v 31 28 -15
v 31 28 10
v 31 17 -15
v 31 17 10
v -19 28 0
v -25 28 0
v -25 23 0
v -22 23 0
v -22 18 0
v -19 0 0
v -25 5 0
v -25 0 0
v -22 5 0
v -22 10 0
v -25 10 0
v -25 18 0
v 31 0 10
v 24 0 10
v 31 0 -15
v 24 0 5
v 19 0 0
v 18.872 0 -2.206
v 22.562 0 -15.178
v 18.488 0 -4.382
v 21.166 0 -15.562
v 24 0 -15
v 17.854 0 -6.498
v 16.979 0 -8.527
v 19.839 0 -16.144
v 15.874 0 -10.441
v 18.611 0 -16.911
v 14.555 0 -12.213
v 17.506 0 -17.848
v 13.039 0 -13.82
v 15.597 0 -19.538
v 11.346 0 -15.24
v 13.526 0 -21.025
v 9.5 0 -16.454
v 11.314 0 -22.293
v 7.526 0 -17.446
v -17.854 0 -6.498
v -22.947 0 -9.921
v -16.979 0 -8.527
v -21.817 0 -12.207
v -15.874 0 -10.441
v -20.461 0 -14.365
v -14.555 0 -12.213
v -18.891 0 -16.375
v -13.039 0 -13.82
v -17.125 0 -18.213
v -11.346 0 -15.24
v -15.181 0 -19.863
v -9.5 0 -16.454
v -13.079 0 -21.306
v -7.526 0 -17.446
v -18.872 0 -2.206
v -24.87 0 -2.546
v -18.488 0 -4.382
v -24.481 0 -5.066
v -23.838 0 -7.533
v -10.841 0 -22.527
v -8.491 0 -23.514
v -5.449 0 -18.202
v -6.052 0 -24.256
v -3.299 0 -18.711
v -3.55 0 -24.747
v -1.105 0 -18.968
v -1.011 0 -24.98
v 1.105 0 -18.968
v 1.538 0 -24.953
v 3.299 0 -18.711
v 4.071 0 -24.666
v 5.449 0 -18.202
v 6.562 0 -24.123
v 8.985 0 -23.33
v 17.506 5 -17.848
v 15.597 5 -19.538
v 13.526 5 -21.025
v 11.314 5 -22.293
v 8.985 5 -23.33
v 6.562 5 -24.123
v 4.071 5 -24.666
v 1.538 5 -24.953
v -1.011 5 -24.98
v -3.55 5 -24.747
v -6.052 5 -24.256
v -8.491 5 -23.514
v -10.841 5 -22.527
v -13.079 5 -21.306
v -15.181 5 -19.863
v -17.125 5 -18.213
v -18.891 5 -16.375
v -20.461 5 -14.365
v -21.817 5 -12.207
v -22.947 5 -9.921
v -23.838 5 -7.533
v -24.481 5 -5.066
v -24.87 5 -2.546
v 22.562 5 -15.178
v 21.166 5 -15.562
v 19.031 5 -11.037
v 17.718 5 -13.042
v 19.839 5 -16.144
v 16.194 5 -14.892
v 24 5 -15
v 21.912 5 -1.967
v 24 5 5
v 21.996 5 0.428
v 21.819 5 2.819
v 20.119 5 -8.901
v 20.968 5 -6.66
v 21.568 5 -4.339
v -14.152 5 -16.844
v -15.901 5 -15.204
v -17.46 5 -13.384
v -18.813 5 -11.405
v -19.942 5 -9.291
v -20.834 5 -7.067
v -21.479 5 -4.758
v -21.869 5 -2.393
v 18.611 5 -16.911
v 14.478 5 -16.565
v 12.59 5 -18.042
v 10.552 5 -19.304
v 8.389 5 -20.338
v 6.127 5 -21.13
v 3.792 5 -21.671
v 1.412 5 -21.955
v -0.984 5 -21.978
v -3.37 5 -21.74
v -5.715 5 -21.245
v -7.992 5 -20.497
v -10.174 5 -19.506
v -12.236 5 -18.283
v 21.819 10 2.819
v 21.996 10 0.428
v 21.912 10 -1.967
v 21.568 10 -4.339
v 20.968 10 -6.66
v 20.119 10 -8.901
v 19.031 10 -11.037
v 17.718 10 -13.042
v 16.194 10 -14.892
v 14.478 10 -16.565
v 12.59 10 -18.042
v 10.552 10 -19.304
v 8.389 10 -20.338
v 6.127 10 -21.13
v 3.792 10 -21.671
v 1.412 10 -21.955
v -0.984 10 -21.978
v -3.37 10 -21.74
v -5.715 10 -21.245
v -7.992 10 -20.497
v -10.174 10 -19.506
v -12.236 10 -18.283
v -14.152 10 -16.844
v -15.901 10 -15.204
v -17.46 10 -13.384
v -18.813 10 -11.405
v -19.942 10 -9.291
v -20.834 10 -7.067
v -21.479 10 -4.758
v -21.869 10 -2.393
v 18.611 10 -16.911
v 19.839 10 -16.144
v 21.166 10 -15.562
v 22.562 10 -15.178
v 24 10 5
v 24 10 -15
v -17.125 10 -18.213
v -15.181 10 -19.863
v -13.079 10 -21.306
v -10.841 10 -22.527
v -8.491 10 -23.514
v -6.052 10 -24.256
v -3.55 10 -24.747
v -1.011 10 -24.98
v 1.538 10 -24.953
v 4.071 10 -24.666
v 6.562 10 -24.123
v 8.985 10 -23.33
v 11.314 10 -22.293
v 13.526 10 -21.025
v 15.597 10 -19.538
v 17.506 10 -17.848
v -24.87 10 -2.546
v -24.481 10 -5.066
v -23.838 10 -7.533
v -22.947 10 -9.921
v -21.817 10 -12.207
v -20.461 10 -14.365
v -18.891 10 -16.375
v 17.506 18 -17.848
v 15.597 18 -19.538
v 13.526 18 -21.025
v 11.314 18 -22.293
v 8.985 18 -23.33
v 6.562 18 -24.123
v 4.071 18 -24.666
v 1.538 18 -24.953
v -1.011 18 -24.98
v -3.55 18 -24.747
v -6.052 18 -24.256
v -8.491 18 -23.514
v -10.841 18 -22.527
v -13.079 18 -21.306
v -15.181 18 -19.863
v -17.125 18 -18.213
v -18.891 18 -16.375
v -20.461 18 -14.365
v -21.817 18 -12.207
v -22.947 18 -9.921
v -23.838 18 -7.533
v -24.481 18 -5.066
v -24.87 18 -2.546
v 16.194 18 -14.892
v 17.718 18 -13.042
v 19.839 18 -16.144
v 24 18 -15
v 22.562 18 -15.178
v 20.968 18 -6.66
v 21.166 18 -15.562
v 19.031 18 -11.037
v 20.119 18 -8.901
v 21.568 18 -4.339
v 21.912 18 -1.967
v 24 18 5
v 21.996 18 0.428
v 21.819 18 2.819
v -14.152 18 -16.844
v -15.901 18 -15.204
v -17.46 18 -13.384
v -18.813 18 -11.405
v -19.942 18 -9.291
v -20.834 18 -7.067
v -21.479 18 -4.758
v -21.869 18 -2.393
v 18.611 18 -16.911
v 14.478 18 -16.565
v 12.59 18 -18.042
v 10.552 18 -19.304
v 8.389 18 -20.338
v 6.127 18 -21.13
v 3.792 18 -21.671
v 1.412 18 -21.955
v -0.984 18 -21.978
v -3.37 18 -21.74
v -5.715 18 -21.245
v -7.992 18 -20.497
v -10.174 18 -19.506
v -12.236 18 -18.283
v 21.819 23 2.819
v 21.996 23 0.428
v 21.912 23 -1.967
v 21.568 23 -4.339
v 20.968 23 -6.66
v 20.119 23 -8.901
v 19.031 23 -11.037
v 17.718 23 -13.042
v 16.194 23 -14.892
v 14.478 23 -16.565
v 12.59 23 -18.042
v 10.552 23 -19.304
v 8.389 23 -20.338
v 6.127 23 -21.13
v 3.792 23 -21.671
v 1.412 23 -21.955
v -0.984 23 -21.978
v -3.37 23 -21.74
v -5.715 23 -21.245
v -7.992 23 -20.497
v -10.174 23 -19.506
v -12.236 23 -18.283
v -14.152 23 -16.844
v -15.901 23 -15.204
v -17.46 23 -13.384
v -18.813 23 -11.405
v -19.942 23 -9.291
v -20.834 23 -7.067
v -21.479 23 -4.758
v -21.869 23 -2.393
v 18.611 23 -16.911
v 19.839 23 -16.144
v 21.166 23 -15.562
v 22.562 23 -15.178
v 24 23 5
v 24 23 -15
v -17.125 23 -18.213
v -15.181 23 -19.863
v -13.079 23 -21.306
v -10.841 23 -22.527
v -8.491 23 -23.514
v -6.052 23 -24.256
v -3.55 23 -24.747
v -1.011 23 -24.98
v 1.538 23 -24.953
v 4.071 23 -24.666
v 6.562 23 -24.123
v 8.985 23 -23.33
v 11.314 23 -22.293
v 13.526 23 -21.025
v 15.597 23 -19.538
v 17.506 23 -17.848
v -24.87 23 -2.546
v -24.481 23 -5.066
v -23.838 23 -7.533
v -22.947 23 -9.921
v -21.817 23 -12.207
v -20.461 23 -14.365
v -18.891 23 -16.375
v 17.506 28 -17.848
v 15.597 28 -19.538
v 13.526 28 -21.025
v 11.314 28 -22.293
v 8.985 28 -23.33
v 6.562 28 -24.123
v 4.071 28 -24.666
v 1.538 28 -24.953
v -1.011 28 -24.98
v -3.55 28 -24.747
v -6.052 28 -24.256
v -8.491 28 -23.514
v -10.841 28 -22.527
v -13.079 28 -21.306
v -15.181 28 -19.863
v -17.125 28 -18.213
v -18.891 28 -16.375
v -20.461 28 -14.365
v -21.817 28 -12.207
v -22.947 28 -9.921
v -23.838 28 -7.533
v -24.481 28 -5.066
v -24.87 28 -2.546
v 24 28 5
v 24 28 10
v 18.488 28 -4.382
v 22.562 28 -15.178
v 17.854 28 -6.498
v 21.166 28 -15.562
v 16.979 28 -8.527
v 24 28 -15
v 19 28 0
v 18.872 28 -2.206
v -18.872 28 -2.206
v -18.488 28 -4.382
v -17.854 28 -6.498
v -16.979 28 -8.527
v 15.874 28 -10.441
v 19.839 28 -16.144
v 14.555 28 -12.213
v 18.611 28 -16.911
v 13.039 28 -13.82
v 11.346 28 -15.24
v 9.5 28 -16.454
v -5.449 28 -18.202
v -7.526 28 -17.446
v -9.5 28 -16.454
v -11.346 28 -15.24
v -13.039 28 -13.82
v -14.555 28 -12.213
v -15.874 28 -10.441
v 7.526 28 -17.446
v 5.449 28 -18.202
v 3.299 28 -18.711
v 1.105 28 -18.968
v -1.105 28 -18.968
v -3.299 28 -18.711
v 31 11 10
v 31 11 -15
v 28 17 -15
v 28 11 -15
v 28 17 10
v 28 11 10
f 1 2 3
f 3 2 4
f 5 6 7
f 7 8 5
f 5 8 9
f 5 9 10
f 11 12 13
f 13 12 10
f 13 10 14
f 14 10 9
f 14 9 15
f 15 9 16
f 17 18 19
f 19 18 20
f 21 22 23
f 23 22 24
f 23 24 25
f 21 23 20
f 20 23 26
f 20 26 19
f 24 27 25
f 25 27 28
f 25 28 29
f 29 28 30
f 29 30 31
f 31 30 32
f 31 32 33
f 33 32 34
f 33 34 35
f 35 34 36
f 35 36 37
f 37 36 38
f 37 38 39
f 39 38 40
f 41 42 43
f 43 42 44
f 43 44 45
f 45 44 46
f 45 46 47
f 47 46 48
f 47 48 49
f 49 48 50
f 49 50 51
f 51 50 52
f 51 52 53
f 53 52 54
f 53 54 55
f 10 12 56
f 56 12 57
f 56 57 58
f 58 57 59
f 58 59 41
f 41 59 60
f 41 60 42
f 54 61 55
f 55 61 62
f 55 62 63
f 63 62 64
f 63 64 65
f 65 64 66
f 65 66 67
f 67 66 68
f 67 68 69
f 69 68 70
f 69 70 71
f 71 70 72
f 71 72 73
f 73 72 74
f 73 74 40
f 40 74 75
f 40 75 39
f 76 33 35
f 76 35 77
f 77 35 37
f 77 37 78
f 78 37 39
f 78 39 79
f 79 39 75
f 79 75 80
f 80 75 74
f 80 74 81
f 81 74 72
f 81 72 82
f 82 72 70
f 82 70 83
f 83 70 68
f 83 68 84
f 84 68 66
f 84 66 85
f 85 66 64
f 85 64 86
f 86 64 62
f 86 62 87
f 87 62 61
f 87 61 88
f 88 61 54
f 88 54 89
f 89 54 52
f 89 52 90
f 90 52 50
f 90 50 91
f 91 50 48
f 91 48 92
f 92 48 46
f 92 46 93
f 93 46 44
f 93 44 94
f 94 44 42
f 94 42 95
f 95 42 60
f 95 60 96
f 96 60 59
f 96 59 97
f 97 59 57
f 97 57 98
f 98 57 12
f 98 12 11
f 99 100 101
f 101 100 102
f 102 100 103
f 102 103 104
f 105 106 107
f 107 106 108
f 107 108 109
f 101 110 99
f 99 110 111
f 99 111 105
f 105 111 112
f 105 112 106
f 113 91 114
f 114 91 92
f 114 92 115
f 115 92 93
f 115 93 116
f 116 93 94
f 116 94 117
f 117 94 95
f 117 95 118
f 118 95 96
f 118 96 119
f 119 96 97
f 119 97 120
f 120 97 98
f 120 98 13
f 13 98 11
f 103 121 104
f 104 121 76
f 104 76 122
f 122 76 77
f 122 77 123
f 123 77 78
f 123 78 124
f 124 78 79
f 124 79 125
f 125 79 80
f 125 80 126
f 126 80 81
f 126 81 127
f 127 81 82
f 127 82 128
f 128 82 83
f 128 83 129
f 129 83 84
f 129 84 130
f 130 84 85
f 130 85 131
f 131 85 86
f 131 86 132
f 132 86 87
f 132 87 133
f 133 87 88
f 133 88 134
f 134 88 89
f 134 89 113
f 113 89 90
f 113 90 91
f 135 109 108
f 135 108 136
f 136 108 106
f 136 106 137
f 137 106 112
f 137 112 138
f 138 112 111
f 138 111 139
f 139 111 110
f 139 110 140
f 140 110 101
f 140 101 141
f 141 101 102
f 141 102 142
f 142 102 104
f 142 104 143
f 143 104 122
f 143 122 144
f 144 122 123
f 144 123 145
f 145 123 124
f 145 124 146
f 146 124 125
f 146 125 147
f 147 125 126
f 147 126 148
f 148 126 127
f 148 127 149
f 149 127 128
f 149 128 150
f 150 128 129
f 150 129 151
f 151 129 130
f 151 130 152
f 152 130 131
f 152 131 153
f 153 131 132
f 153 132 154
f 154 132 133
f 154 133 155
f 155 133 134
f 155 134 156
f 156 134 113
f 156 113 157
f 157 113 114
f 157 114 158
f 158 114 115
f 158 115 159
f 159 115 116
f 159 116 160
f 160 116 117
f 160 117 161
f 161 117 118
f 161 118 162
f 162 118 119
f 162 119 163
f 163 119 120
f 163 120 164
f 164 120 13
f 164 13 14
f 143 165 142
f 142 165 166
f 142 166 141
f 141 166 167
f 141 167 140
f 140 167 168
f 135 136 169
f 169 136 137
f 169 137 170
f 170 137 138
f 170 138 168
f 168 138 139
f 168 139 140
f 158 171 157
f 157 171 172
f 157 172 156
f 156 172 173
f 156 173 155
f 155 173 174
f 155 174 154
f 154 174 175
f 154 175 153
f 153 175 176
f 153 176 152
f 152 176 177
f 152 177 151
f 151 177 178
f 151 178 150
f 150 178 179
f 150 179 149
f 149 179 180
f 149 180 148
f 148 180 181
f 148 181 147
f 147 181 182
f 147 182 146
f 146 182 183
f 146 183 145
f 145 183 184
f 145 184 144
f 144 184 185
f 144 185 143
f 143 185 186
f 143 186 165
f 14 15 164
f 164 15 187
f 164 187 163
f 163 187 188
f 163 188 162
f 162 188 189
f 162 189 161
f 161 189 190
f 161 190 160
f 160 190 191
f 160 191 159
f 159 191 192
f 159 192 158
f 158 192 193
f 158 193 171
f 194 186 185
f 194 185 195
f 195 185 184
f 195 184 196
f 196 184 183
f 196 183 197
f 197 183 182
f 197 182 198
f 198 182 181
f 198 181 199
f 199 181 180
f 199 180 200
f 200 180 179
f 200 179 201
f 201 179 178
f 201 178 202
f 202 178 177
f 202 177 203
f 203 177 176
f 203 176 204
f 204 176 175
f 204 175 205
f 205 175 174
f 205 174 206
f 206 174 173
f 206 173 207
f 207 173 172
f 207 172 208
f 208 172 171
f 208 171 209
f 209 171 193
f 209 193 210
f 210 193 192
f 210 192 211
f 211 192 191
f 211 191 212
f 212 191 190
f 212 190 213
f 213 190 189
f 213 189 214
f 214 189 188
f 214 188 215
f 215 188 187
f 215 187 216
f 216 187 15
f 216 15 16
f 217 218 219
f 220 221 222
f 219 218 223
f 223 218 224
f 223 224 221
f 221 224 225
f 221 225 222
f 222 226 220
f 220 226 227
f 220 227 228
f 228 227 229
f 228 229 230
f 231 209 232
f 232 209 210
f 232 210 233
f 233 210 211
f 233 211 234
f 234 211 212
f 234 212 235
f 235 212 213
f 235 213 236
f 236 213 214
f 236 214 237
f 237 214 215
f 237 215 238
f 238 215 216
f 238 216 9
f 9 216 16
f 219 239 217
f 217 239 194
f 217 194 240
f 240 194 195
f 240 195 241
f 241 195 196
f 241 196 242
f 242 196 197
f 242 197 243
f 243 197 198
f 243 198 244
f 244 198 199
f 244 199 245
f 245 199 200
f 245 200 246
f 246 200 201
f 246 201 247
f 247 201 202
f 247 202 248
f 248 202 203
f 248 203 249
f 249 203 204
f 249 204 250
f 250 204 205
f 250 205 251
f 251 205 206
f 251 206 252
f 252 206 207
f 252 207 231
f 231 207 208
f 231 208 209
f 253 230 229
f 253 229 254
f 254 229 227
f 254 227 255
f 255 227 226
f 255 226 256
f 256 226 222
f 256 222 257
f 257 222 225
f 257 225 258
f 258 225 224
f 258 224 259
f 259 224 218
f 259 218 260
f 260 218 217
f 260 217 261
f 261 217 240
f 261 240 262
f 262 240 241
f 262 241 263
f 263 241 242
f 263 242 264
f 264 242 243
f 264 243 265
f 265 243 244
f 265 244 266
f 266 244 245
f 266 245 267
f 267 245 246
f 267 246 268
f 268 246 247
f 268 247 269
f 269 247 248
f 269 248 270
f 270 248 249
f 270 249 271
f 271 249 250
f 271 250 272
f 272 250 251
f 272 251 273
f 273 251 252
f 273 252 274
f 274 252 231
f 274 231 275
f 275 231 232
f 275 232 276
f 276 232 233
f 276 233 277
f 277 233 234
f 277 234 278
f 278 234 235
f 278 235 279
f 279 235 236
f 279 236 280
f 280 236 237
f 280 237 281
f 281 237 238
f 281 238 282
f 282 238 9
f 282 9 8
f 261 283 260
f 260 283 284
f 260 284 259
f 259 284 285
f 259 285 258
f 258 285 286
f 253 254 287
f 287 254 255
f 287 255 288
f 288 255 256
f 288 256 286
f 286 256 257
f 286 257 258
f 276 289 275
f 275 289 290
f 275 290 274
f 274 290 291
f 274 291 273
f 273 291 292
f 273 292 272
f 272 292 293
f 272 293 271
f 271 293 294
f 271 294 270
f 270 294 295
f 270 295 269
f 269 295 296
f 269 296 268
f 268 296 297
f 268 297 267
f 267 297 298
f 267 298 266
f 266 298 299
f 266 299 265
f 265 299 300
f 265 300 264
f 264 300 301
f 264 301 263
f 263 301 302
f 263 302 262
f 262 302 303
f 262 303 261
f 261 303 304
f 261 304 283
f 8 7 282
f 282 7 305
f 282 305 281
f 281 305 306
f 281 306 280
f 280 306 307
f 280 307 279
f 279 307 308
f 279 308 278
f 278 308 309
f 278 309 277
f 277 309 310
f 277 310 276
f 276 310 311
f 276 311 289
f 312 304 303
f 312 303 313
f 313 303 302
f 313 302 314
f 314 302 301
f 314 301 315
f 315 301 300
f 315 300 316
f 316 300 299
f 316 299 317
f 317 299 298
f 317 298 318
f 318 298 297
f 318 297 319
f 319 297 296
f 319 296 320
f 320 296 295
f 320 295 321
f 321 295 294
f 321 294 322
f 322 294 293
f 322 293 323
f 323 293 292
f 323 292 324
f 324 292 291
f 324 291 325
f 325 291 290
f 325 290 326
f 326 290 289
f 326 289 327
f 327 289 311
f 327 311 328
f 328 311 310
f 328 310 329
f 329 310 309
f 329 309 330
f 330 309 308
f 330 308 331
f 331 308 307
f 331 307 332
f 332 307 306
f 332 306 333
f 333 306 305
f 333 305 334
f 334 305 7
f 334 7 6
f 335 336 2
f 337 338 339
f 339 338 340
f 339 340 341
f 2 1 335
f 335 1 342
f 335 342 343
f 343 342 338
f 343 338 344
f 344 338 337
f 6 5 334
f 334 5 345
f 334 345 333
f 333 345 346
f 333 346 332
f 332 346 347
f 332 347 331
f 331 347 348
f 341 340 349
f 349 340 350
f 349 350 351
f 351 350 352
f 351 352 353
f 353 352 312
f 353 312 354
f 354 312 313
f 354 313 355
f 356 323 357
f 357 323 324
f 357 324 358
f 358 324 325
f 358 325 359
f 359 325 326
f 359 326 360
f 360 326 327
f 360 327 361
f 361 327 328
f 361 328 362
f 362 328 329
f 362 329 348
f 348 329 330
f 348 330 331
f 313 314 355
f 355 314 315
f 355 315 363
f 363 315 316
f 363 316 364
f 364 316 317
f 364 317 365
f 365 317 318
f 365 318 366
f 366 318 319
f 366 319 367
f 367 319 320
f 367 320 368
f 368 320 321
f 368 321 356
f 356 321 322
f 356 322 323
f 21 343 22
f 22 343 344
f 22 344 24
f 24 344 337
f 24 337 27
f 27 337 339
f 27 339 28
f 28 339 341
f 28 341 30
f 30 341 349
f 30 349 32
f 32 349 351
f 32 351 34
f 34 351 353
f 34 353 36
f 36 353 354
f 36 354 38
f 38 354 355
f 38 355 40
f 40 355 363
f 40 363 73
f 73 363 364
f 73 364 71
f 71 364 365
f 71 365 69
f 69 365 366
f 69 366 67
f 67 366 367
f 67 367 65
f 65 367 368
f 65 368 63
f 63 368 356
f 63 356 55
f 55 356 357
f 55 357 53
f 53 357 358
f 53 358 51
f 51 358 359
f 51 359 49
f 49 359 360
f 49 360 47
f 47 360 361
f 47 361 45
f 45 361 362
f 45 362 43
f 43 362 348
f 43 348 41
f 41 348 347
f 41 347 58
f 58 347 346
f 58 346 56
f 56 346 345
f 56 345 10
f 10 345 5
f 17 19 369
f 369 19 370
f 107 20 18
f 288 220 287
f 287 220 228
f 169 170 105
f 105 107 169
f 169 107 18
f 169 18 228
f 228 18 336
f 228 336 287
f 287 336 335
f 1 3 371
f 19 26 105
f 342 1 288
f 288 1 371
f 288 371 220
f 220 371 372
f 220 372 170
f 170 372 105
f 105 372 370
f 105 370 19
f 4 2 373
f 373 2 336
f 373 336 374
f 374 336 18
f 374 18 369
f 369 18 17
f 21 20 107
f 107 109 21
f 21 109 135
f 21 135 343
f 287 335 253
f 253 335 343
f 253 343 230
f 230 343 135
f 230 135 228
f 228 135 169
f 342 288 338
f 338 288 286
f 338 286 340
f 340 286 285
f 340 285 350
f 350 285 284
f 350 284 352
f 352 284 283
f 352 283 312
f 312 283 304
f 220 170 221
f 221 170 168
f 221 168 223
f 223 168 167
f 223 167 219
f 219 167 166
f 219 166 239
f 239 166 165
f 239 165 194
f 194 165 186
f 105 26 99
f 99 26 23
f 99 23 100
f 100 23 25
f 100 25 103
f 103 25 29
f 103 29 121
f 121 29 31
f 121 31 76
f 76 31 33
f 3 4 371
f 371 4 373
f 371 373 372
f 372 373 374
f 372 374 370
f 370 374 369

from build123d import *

# Parameters (mm, degrees)
REVOLUCI_N1_ANGLE       = 180
CROQUIS2_R              = 19
CORTAR_EXTRUIR1_DEPTH   = 29
SALIENTE_EXTRUIR1_DEPTH = 15
CROQUIS4_W              = 7
CROQUIS4_H              = 28
SALIENTE_EXTRUIR2_DEPTH = 10
CHAFL_N1_SIZE           = 5
REDONDEO1_R             = 10
CORTAR_EXTRUIR2_DEPTH   = 40


with BuildPart() as part:
    # Croquis1 → Revolución1 (revolve)
    with BuildSketch(Plane.XY):
        Polygon((0, 0), (0, 28), (25, 28), (25, 23), (22, 23), (22, 18), (25, 18), (25, 10), (22, 10), (22, 5), (25, 5), (25, 0), align=None)
    revolve(axis=Axis((0, 0, 0), (0, 1, 0)), revolution_arc=REVOLUCI_N1_ANGLE)

    # Croquis2 → Cortar-Extruir1 (cut)
    with BuildSketch(Plane(origin=(0, 28, 0), x_dir=(1, 0, 0), z_dir=(0, 1, 0))):
        Circle(CROQUIS2_R)
    extrude(amount=-CORTAR_EXTRUIR1_DEPTH, mode=Mode.SUBTRACT)

    # Croquis3 → Saliente-Extruir1 (add)
    with BuildSketch(Plane.XY):
        Polygon((25, 28), (24, 28), (24, 0), (31, 0), (31, 28), align=None)
    extrude(amount=-SALIENTE_EXTRUIR1_DEPTH)

    # Croquis4 → Saliente-Extruir2 (add)
    with BuildSketch(Plane.XY):
        with Locations((27.5, 14)):
            Rectangle(CROQUIS4_W, CROQUIS4_H)
    extrude(amount=SALIENTE_EXTRUIR2_DEPTH)

    # Chaflán1
    # the kernel refuses this chamfer: 5 mm, written as the material it adds along each edge
    with BuildSketch(Plane(origin=(24, 10.14158506, 0), x_dir=(0.027495876610586317, 0, 0.9996219169112968), z_dir=(0, 1, 0))) as chafl_n1_piece_1_section:
        Polygon((CHAFL_N1_SIZE * 0.999621916911, -CHAFL_N1_SIZE * 0.0274958766106), (-CHAFL_N1_SIZE * 0.0274958766106, -CHAFL_N1_SIZE * 0.999621916911), (0, 0), align=None)
    chafl_n1_piece_1 = extrude(amount=30.71682988, mode=Mode.PRIVATE)
    chafl_n1_piece_1 = split(chafl_n1_piece_1, bisect_by=Plane(origin=(23.057401275, 18, 2.044863286), z_dir=(0, -1, 0)), keep=Keep.TOP, mode=Mode.PRIVATE)
    add(chafl_n1_piece_1)
    with BuildSketch(Plane(origin=(24, 10.14158506, 0), x_dir=(0.027495876610586317, 0, 0.9996219169112968), z_dir=(0, 1, 0))) as chafl_n1_piece_2_section:
        Polygon((CHAFL_N1_SIZE * 0.999621916911, -CHAFL_N1_SIZE * 0.0274958766106), (-CHAFL_N1_SIZE * 0.0274958766106, -CHAFL_N1_SIZE * 0.999621916911), (0, 0), align=None)
    chafl_n1_piece_2 = extrude(amount=17.85841494, mode=Mode.PRIVATE)
    chafl_n1_piece_2 = chafl_n1_piece_2 & Plane(origin=(0, 20.5, 0), x_dir=(1, 0, 0), z_dir=(0, -1, 0)) * Cylinder(22, 56, mode=Mode.PRIVATE)
    add(chafl_n1_piece_2)
    with BuildSketch(Plane(origin=(24, 23, 0), x_dir=(0.027495876610586317, 0, 0.9996219169112968), z_dir=(0, 1, 0)), Plane(origin=(24, 0, 0), x_dir=(0.027495876610586317, 0, 0.9996219169112968), z_dir=(0, 1, 0))) as chafl_n1_piece_3:
        Polygon((CHAFL_N1_SIZE * 0.999621916911, -CHAFL_N1_SIZE * 0.0274958766106), (-CHAFL_N1_SIZE * 0.0274958766106, -CHAFL_N1_SIZE * 0.999621916911), (0, 0), align=None)
    extrude(amount=5)
    with BuildSketch(Plane(origin=(24, -2.85841494, 0), x_dir=(0.027495876610586317, 0, 0.9996219169112968), z_dir=(0, 1, 0))) as chafl_n1_piece_4_section:
        Polygon((CHAFL_N1_SIZE * 0.999621916911, -CHAFL_N1_SIZE * 0.0274958766106), (-CHAFL_N1_SIZE * 0.0274958766106, -CHAFL_N1_SIZE * 0.999621916911), (0, 0), align=None)
    chafl_n1_piece_4 = extrude(amount=33.71682988, mode=Mode.PRIVATE)
    chafl_n1_piece_4 = split(chafl_n1_piece_4, bisect_by=Plane(origin=(23.057401275, 0, 2.044863286), z_dir=(0, 1, 0)), keep=Keep.TOP, mode=Mode.PRIVATE)
    chafl_n1_piece_4 = split(chafl_n1_piece_4, bisect_by=Plane(origin=(23.057401275, 5, 2.044863286), z_dir=(0, -1, 0)), keep=Keep.TOP, mode=Mode.PRIVATE)
    add(chafl_n1_piece_4)
    with BuildSketch(Plane(origin=(24, -2.85841494, 0), x_dir=(0.027495876610586317, 0, 0.9996219169112968), z_dir=(0, 1, 0))) as chafl_n1_piece_5_section:
        Polygon((CHAFL_N1_SIZE * 0.999621916911, -CHAFL_N1_SIZE * 0.0274958766106), (-CHAFL_N1_SIZE * 0.0274958766106, -CHAFL_N1_SIZE * 0.999621916911), (0, 0), align=None)
    chafl_n1_piece_5 = extrude(amount=33.71682988, mode=Mode.PRIVATE)
    chafl_n1_piece_5 = split(chafl_n1_piece_5, bisect_by=Plane(origin=(20.959134142, 28, 0.94889219), z_dir=(0, -1, 0)), keep=Keep.TOP, mode=Mode.PRIVATE)
    chafl_n1_piece_5 = split(chafl_n1_piece_5, bisect_by=Plane(origin=(20.959134142, 5, 0.94889219), z_dir=(0, 1, 0)), keep=Keep.TOP, mode=Mode.PRIVATE)
    chafl_n1_piece_5 = chafl_n1_piece_5 & Plane(origin=(0, 7.5, 0), x_dir=(1, 0, 0), z_dir=(0, -1, 0)) * Cylinder(22, 88, mode=Mode.PRIVATE)
    add(chafl_n1_piece_5)
    with BuildSketch(Plane(origin=(24, 10, 0), x_dir=(0.027495876610586317, 0, 0.9996219169112968), z_dir=(0, 1, 0))) as chafl_n1_piece_6:
        Polygon((CHAFL_N1_SIZE * 0.999621916911, -CHAFL_N1_SIZE * 0.0274958766106), (-CHAFL_N1_SIZE * 0.0274958766106, -CHAFL_N1_SIZE * 0.999621916911), (0, 0), align=None)
    extrude(amount=8)
    with BuildSketch(Plane(origin=(24, -2.85841494, 0), x_dir=(0.027495876610586317, 0, 0.9996219169112968), z_dir=(0, 1, 0))) as chafl_n1_piece_7_section:
        Polygon((CHAFL_N1_SIZE * 0.999621916911, -CHAFL_N1_SIZE * 0.0274958766106), (-CHAFL_N1_SIZE * 0.0274958766106, -CHAFL_N1_SIZE * 0.999621916911), (0, 0), align=None)
    chafl_n1_piece_7 = extrude(amount=33.71682988, mode=Mode.PRIVATE)
    chafl_n1_piece_7 = split(chafl_n1_piece_7, bisect_by=Plane(origin=(23.057401275, 28, 2.044863286), z_dir=(0, -1, 0)), keep=Keep.TOP, mode=Mode.PRIVATE)
    chafl_n1_piece_7 = split(chafl_n1_piece_7, bisect_by=Plane(origin=(23.057401275, 23, 2.044863286), z_dir=(0, 1, 0)), keep=Keep.TOP, mode=Mode.PRIVATE)
    add(chafl_n1_piece_7)
    with BuildSketch(Plane(origin=(24, -12.85841494, 0), x_dir=(0.027495876610586317, 0, 0.9996219169112968), z_dir=(0, 1, 0))) as chafl_n1_piece_8_section:
        Polygon((CHAFL_N1_SIZE * 0.999621916911, -CHAFL_N1_SIZE * 0.0274958766106), (-CHAFL_N1_SIZE * 0.0274958766106, -CHAFL_N1_SIZE * 0.999621916911), (0, 0), align=None)
    chafl_n1_piece_8 = extrude(amount=30.71682988, mode=Mode.PRIVATE)
    chafl_n1_piece_8 = split(chafl_n1_piece_8, bisect_by=Plane(origin=(20.959134142, 5, 0.94889219), z_dir=(0, 1, 0)), keep=Keep.TOP, mode=Mode.PRIVATE)
    chafl_n1_piece_8 = chafl_n1_piece_8 & Plane(origin=(0, 7.5, 0), x_dir=(1, 0, 0), z_dir=(0, -1, 0)) * Cylinder(22, 82, mode=Mode.PRIVATE)
    add(chafl_n1_piece_8)
    with BuildSketch(Plane(origin=(24, -12.85841494, 0), x_dir=(0.027495876610586317, 0, 0.9996219169112968), z_dir=(0, 1, 0))) as chafl_n1_piece_9_section:
        Polygon((CHAFL_N1_SIZE * 0.999621916911, -CHAFL_N1_SIZE * 0.0274958766106), (-CHAFL_N1_SIZE * 0.0274958766106, -CHAFL_N1_SIZE * 0.999621916911), (0, 0), align=None)
    chafl_n1_piece_9 = extrude(amount=30.71682988, mode=Mode.PRIVATE)
    chafl_n1_piece_9 = split(chafl_n1_piece_9, bisect_by=Plane(origin=(23.057401275, 10, 2.044863286), z_dir=(0, 1, 0)), keep=Keep.TOP, mode=Mode.PRIVATE)
    add(chafl_n1_piece_9)

    # Redondeo1
    # the kernel refuses this fillet: 10 mm, written as the material it adds along each edge
    with BuildSketch(Plane(origin=(24, 28, -7), x_dir=(-0.5136512800645924, 0, -0.8579990457384005), z_dir=(0, -1, 0)), Plane(origin=(24, 5, -7), x_dir=(-0.5136512800645924, 0, -0.8579990457384005), z_dir=(0, -1, 0))) as redondeo1_piece_1:
        with BuildLine():
            CenterArc((15.171929763, 9.675014423), REDONDEO1_R, 213.819639199, 41.5332183)
            Line((6.863992366, 4.109210241), (0, 0))
            ThreePointArc((0, 0), (6.321637401, 0.812463942), (12.643274803, 0))
        make_face()
    extrude(amount=5)
    with BuildSketch(Plane(origin=(24, 59.608187007, -7), x_dir=(-0.5136512800645924, 0, -0.8579990457384005), z_dir=(0, -1, 0))) as redondeo1_piece_2_section:
        with BuildLine():
            CenterArc((15.171929763, 9.675014423), REDONDEO1_R, 213.819639199, 41.5332183)
            Line((6.863992366, 4.109210241), (0, 0))
            ThreePointArc((0, 0), (6.321637401, 0.812463942), (12.643274803, 0))
        make_face()
    redondeo1_piece_2 = extrude(amount=68.216374014, mode=Mode.PRIVATE)
    redondeo1_piece_2 = split(redondeo1_piece_2, bisect_by=Plane(origin=(20.483934171, 18, -15.810663128), z_dir=(0, -1, 0)), keep=Keep.TOP, mode=Mode.PRIVATE)
    redondeo1_piece_2 = split(redondeo1_piece_2, bisect_by=Plane(origin=(20.483934171, 10, -15.810663128), z_dir=(0, 1, 0)), keep=Keep.TOP, mode=Mode.PRIVATE)
    add(redondeo1_piece_2)
    with BuildSketch(Plane(origin=(24, 59.608187007, -7), x_dir=(-0.5136512800645924, 0, -0.8579990457384005), z_dir=(0, -1, 0))) as redondeo1_piece_3_section:
        with BuildLine():
            CenterArc((15.171929763, 9.675014423), REDONDEO1_R, 213.819639199, 41.5332183)
            Line((6.863992366, 4.109210241), (0, 0))
            ThreePointArc((0, 0), (6.321637401, 0.812463942), (12.643274803, 0))
        make_face()
    redondeo1_piece_3 = extrude(amount=68.216374014, mode=Mode.PRIVATE)
    redondeo1_piece_3 = split(redondeo1_piece_3, bisect_by=Plane(origin=(20.483934171, 5, -15.810663128), z_dir=(0, -1, 0)), keep=Keep.TOP, mode=Mode.PRIVATE)
    redondeo1_piece_3 = split(redondeo1_piece_3, bisect_by=Plane(origin=(20.483934171, 0, -15.810663128), z_dir=(0, 1, 0)), keep=Keep.TOP, mode=Mode.PRIVATE)
    add(redondeo1_piece_3)
    with BuildSketch(Plane(origin=(24, 49.608187007, -7), x_dir=(-0.5136512800645924, 0, -0.8579990457384005), z_dir=(0, -1, 0))) as redondeo1_piece_4_section:
        with BuildLine():
            CenterArc((15.171929763, 9.675014423), REDONDEO1_R, 213.819639199, 41.5332183)
            Line((6.863992366, 4.109210241), (0, 0))
            ThreePointArc((0, 0), (6.321637401, 0.812463942), (12.643274803, 0))
        make_face()
    redondeo1_piece_4 = extrude(amount=71.216374014, mode=Mode.PRIVATE)
    redondeo1_piece_4 = split(redondeo1_piece_4, bisect_by=Plane(origin=(20.483934171, 28, -15.810663128), z_dir=(0, -1, 0)), keep=Keep.TOP, mode=Mode.PRIVATE)
    redondeo1_piece_4 = split(redondeo1_piece_4, bisect_by=Plane(origin=(20.483934171, 23, -15.810663128), z_dir=(0, 1, 0)), keep=Keep.TOP, mode=Mode.PRIVATE)
    add(redondeo1_piece_4)
    with BuildSketch(Plane(origin=(24, 18, -7), x_dir=(-0.5136512800645924, 0, -0.8579990457384005), z_dir=(0, -1, 0))) as redondeo1_piece_5:
        with BuildLine():
            CenterArc((15.171929763, 9.675014423), REDONDEO1_R, 213.819639199, 41.5332183)
            Line((6.863992366, 4.109210241), (0, 0))
            ThreePointArc((0, 0), (6.321637401, 0.812463942), (12.643274803, 0))
        make_face()
    extrude(amount=8)
    with BuildSketch(Plane(origin=(24, 49.608187007, -7), x_dir=(-0.5136512800645924, 0, -0.8579990457384005), z_dir=(0, -1, 0))) as redondeo1_piece_6_section:
        with BuildLine():
            CenterArc((15.171929763, 9.675014423), REDONDEO1_R, 213.819639199, 41.5332183)
            Line((6.863992366, 4.109210241), (0, 0))
            ThreePointArc((0, 0), (6.321637401, 0.812463942), (12.643274803, 0))
        make_face()
    redondeo1_piece_6 = extrude(amount=71.216374014, mode=Mode.PRIVATE)
    redondeo1_piece_6 = split(redondeo1_piece_6, bisect_by=Plane(origin=(20.483934171, 5, -15.810663128), z_dir=(0, -1, 0)), keep=Keep.TOP, mode=Mode.PRIVATE)
    redondeo1_piece_6 = split(redondeo1_piece_6, bisect_by=Plane(origin=(20.483934171, 0, -15.810663128), z_dir=(0, 1, 0)), keep=Keep.TOP, mode=Mode.PRIVATE)
    add(redondeo1_piece_6)
    with BuildSketch(Plane(origin=(24, 36.608187007, -7), x_dir=(-0.5136512800645924, 0, -0.8579990457384005), z_dir=(0, -1, 0))) as redondeo1_piece_7_section:
        with BuildLine():
            CenterArc((15.171929763, 9.675014423), REDONDEO1_R, 213.819639199, 41.5332183)
            Line((6.863992366, 4.109210241), (0, 0))
            ThreePointArc((0, 0), (6.321637401, 0.812463942), (12.643274803, 0))
        make_face()
    redondeo1_piece_7 = extrude(amount=68.216374014, mode=Mode.PRIVATE)
    redondeo1_piece_7 = split(redondeo1_piece_7, bisect_by=Plane(origin=(20.483934171, 28, -15.810663128), z_dir=(0, -1, 0)), keep=Keep.TOP, mode=Mode.PRIVATE)
    redondeo1_piece_7 = split(redondeo1_piece_7, bisect_by=Plane(origin=(20.483934171, 23, -15.810663128), z_dir=(0, 1, 0)), keep=Keep.TOP, mode=Mode.PRIVATE)
    add(redondeo1_piece_7)
    with BuildSketch(Plane(origin=(24, 36.608187007, -7), x_dir=(-0.5136512800645924, 0, -0.8579990457384005), z_dir=(0, -1, 0))) as redondeo1_piece_8_section:
        with BuildLine():
            CenterArc((15.171929763, 9.675014423), REDONDEO1_R, 213.819639199, 41.5332183)
            Line((6.863992366, 4.109210241), (0, 0))
            ThreePointArc((0, 0), (6.321637401, 0.812463942), (12.643274803, 0))
        make_face()
    redondeo1_piece_8 = extrude(amount=68.216374014, mode=Mode.PRIVATE)
    redondeo1_piece_8 = split(redondeo1_piece_8, bisect_by=Plane(origin=(20.483934171, 18, -15.810663128), z_dir=(0, -1, 0)), keep=Keep.TOP, mode=Mode.PRIVATE)
    redondeo1_piece_8 = split(redondeo1_piece_8, bisect_by=Plane(origin=(20.483934171, 10, -15.810663128), z_dir=(0, 1, 0)), keep=Keep.TOP, mode=Mode.PRIVATE)
    add(redondeo1_piece_8)

    # Croquis5 → Cortar-Extruir2 (cut)
    with BuildSketch(Plane(origin=(0, 0, -15), x_dir=(-1, 0, 0), z_dir=(0, 0, -1))):
        Polygon((-31, 14), (-31, 11), (-28, 11), (-28, 17), (-31, 17), align=None)
    extrude(amount=-CORTAR_EXTRUIR2_DEPTH, mode=Mode.SUBTRACT)


solid = part.part
